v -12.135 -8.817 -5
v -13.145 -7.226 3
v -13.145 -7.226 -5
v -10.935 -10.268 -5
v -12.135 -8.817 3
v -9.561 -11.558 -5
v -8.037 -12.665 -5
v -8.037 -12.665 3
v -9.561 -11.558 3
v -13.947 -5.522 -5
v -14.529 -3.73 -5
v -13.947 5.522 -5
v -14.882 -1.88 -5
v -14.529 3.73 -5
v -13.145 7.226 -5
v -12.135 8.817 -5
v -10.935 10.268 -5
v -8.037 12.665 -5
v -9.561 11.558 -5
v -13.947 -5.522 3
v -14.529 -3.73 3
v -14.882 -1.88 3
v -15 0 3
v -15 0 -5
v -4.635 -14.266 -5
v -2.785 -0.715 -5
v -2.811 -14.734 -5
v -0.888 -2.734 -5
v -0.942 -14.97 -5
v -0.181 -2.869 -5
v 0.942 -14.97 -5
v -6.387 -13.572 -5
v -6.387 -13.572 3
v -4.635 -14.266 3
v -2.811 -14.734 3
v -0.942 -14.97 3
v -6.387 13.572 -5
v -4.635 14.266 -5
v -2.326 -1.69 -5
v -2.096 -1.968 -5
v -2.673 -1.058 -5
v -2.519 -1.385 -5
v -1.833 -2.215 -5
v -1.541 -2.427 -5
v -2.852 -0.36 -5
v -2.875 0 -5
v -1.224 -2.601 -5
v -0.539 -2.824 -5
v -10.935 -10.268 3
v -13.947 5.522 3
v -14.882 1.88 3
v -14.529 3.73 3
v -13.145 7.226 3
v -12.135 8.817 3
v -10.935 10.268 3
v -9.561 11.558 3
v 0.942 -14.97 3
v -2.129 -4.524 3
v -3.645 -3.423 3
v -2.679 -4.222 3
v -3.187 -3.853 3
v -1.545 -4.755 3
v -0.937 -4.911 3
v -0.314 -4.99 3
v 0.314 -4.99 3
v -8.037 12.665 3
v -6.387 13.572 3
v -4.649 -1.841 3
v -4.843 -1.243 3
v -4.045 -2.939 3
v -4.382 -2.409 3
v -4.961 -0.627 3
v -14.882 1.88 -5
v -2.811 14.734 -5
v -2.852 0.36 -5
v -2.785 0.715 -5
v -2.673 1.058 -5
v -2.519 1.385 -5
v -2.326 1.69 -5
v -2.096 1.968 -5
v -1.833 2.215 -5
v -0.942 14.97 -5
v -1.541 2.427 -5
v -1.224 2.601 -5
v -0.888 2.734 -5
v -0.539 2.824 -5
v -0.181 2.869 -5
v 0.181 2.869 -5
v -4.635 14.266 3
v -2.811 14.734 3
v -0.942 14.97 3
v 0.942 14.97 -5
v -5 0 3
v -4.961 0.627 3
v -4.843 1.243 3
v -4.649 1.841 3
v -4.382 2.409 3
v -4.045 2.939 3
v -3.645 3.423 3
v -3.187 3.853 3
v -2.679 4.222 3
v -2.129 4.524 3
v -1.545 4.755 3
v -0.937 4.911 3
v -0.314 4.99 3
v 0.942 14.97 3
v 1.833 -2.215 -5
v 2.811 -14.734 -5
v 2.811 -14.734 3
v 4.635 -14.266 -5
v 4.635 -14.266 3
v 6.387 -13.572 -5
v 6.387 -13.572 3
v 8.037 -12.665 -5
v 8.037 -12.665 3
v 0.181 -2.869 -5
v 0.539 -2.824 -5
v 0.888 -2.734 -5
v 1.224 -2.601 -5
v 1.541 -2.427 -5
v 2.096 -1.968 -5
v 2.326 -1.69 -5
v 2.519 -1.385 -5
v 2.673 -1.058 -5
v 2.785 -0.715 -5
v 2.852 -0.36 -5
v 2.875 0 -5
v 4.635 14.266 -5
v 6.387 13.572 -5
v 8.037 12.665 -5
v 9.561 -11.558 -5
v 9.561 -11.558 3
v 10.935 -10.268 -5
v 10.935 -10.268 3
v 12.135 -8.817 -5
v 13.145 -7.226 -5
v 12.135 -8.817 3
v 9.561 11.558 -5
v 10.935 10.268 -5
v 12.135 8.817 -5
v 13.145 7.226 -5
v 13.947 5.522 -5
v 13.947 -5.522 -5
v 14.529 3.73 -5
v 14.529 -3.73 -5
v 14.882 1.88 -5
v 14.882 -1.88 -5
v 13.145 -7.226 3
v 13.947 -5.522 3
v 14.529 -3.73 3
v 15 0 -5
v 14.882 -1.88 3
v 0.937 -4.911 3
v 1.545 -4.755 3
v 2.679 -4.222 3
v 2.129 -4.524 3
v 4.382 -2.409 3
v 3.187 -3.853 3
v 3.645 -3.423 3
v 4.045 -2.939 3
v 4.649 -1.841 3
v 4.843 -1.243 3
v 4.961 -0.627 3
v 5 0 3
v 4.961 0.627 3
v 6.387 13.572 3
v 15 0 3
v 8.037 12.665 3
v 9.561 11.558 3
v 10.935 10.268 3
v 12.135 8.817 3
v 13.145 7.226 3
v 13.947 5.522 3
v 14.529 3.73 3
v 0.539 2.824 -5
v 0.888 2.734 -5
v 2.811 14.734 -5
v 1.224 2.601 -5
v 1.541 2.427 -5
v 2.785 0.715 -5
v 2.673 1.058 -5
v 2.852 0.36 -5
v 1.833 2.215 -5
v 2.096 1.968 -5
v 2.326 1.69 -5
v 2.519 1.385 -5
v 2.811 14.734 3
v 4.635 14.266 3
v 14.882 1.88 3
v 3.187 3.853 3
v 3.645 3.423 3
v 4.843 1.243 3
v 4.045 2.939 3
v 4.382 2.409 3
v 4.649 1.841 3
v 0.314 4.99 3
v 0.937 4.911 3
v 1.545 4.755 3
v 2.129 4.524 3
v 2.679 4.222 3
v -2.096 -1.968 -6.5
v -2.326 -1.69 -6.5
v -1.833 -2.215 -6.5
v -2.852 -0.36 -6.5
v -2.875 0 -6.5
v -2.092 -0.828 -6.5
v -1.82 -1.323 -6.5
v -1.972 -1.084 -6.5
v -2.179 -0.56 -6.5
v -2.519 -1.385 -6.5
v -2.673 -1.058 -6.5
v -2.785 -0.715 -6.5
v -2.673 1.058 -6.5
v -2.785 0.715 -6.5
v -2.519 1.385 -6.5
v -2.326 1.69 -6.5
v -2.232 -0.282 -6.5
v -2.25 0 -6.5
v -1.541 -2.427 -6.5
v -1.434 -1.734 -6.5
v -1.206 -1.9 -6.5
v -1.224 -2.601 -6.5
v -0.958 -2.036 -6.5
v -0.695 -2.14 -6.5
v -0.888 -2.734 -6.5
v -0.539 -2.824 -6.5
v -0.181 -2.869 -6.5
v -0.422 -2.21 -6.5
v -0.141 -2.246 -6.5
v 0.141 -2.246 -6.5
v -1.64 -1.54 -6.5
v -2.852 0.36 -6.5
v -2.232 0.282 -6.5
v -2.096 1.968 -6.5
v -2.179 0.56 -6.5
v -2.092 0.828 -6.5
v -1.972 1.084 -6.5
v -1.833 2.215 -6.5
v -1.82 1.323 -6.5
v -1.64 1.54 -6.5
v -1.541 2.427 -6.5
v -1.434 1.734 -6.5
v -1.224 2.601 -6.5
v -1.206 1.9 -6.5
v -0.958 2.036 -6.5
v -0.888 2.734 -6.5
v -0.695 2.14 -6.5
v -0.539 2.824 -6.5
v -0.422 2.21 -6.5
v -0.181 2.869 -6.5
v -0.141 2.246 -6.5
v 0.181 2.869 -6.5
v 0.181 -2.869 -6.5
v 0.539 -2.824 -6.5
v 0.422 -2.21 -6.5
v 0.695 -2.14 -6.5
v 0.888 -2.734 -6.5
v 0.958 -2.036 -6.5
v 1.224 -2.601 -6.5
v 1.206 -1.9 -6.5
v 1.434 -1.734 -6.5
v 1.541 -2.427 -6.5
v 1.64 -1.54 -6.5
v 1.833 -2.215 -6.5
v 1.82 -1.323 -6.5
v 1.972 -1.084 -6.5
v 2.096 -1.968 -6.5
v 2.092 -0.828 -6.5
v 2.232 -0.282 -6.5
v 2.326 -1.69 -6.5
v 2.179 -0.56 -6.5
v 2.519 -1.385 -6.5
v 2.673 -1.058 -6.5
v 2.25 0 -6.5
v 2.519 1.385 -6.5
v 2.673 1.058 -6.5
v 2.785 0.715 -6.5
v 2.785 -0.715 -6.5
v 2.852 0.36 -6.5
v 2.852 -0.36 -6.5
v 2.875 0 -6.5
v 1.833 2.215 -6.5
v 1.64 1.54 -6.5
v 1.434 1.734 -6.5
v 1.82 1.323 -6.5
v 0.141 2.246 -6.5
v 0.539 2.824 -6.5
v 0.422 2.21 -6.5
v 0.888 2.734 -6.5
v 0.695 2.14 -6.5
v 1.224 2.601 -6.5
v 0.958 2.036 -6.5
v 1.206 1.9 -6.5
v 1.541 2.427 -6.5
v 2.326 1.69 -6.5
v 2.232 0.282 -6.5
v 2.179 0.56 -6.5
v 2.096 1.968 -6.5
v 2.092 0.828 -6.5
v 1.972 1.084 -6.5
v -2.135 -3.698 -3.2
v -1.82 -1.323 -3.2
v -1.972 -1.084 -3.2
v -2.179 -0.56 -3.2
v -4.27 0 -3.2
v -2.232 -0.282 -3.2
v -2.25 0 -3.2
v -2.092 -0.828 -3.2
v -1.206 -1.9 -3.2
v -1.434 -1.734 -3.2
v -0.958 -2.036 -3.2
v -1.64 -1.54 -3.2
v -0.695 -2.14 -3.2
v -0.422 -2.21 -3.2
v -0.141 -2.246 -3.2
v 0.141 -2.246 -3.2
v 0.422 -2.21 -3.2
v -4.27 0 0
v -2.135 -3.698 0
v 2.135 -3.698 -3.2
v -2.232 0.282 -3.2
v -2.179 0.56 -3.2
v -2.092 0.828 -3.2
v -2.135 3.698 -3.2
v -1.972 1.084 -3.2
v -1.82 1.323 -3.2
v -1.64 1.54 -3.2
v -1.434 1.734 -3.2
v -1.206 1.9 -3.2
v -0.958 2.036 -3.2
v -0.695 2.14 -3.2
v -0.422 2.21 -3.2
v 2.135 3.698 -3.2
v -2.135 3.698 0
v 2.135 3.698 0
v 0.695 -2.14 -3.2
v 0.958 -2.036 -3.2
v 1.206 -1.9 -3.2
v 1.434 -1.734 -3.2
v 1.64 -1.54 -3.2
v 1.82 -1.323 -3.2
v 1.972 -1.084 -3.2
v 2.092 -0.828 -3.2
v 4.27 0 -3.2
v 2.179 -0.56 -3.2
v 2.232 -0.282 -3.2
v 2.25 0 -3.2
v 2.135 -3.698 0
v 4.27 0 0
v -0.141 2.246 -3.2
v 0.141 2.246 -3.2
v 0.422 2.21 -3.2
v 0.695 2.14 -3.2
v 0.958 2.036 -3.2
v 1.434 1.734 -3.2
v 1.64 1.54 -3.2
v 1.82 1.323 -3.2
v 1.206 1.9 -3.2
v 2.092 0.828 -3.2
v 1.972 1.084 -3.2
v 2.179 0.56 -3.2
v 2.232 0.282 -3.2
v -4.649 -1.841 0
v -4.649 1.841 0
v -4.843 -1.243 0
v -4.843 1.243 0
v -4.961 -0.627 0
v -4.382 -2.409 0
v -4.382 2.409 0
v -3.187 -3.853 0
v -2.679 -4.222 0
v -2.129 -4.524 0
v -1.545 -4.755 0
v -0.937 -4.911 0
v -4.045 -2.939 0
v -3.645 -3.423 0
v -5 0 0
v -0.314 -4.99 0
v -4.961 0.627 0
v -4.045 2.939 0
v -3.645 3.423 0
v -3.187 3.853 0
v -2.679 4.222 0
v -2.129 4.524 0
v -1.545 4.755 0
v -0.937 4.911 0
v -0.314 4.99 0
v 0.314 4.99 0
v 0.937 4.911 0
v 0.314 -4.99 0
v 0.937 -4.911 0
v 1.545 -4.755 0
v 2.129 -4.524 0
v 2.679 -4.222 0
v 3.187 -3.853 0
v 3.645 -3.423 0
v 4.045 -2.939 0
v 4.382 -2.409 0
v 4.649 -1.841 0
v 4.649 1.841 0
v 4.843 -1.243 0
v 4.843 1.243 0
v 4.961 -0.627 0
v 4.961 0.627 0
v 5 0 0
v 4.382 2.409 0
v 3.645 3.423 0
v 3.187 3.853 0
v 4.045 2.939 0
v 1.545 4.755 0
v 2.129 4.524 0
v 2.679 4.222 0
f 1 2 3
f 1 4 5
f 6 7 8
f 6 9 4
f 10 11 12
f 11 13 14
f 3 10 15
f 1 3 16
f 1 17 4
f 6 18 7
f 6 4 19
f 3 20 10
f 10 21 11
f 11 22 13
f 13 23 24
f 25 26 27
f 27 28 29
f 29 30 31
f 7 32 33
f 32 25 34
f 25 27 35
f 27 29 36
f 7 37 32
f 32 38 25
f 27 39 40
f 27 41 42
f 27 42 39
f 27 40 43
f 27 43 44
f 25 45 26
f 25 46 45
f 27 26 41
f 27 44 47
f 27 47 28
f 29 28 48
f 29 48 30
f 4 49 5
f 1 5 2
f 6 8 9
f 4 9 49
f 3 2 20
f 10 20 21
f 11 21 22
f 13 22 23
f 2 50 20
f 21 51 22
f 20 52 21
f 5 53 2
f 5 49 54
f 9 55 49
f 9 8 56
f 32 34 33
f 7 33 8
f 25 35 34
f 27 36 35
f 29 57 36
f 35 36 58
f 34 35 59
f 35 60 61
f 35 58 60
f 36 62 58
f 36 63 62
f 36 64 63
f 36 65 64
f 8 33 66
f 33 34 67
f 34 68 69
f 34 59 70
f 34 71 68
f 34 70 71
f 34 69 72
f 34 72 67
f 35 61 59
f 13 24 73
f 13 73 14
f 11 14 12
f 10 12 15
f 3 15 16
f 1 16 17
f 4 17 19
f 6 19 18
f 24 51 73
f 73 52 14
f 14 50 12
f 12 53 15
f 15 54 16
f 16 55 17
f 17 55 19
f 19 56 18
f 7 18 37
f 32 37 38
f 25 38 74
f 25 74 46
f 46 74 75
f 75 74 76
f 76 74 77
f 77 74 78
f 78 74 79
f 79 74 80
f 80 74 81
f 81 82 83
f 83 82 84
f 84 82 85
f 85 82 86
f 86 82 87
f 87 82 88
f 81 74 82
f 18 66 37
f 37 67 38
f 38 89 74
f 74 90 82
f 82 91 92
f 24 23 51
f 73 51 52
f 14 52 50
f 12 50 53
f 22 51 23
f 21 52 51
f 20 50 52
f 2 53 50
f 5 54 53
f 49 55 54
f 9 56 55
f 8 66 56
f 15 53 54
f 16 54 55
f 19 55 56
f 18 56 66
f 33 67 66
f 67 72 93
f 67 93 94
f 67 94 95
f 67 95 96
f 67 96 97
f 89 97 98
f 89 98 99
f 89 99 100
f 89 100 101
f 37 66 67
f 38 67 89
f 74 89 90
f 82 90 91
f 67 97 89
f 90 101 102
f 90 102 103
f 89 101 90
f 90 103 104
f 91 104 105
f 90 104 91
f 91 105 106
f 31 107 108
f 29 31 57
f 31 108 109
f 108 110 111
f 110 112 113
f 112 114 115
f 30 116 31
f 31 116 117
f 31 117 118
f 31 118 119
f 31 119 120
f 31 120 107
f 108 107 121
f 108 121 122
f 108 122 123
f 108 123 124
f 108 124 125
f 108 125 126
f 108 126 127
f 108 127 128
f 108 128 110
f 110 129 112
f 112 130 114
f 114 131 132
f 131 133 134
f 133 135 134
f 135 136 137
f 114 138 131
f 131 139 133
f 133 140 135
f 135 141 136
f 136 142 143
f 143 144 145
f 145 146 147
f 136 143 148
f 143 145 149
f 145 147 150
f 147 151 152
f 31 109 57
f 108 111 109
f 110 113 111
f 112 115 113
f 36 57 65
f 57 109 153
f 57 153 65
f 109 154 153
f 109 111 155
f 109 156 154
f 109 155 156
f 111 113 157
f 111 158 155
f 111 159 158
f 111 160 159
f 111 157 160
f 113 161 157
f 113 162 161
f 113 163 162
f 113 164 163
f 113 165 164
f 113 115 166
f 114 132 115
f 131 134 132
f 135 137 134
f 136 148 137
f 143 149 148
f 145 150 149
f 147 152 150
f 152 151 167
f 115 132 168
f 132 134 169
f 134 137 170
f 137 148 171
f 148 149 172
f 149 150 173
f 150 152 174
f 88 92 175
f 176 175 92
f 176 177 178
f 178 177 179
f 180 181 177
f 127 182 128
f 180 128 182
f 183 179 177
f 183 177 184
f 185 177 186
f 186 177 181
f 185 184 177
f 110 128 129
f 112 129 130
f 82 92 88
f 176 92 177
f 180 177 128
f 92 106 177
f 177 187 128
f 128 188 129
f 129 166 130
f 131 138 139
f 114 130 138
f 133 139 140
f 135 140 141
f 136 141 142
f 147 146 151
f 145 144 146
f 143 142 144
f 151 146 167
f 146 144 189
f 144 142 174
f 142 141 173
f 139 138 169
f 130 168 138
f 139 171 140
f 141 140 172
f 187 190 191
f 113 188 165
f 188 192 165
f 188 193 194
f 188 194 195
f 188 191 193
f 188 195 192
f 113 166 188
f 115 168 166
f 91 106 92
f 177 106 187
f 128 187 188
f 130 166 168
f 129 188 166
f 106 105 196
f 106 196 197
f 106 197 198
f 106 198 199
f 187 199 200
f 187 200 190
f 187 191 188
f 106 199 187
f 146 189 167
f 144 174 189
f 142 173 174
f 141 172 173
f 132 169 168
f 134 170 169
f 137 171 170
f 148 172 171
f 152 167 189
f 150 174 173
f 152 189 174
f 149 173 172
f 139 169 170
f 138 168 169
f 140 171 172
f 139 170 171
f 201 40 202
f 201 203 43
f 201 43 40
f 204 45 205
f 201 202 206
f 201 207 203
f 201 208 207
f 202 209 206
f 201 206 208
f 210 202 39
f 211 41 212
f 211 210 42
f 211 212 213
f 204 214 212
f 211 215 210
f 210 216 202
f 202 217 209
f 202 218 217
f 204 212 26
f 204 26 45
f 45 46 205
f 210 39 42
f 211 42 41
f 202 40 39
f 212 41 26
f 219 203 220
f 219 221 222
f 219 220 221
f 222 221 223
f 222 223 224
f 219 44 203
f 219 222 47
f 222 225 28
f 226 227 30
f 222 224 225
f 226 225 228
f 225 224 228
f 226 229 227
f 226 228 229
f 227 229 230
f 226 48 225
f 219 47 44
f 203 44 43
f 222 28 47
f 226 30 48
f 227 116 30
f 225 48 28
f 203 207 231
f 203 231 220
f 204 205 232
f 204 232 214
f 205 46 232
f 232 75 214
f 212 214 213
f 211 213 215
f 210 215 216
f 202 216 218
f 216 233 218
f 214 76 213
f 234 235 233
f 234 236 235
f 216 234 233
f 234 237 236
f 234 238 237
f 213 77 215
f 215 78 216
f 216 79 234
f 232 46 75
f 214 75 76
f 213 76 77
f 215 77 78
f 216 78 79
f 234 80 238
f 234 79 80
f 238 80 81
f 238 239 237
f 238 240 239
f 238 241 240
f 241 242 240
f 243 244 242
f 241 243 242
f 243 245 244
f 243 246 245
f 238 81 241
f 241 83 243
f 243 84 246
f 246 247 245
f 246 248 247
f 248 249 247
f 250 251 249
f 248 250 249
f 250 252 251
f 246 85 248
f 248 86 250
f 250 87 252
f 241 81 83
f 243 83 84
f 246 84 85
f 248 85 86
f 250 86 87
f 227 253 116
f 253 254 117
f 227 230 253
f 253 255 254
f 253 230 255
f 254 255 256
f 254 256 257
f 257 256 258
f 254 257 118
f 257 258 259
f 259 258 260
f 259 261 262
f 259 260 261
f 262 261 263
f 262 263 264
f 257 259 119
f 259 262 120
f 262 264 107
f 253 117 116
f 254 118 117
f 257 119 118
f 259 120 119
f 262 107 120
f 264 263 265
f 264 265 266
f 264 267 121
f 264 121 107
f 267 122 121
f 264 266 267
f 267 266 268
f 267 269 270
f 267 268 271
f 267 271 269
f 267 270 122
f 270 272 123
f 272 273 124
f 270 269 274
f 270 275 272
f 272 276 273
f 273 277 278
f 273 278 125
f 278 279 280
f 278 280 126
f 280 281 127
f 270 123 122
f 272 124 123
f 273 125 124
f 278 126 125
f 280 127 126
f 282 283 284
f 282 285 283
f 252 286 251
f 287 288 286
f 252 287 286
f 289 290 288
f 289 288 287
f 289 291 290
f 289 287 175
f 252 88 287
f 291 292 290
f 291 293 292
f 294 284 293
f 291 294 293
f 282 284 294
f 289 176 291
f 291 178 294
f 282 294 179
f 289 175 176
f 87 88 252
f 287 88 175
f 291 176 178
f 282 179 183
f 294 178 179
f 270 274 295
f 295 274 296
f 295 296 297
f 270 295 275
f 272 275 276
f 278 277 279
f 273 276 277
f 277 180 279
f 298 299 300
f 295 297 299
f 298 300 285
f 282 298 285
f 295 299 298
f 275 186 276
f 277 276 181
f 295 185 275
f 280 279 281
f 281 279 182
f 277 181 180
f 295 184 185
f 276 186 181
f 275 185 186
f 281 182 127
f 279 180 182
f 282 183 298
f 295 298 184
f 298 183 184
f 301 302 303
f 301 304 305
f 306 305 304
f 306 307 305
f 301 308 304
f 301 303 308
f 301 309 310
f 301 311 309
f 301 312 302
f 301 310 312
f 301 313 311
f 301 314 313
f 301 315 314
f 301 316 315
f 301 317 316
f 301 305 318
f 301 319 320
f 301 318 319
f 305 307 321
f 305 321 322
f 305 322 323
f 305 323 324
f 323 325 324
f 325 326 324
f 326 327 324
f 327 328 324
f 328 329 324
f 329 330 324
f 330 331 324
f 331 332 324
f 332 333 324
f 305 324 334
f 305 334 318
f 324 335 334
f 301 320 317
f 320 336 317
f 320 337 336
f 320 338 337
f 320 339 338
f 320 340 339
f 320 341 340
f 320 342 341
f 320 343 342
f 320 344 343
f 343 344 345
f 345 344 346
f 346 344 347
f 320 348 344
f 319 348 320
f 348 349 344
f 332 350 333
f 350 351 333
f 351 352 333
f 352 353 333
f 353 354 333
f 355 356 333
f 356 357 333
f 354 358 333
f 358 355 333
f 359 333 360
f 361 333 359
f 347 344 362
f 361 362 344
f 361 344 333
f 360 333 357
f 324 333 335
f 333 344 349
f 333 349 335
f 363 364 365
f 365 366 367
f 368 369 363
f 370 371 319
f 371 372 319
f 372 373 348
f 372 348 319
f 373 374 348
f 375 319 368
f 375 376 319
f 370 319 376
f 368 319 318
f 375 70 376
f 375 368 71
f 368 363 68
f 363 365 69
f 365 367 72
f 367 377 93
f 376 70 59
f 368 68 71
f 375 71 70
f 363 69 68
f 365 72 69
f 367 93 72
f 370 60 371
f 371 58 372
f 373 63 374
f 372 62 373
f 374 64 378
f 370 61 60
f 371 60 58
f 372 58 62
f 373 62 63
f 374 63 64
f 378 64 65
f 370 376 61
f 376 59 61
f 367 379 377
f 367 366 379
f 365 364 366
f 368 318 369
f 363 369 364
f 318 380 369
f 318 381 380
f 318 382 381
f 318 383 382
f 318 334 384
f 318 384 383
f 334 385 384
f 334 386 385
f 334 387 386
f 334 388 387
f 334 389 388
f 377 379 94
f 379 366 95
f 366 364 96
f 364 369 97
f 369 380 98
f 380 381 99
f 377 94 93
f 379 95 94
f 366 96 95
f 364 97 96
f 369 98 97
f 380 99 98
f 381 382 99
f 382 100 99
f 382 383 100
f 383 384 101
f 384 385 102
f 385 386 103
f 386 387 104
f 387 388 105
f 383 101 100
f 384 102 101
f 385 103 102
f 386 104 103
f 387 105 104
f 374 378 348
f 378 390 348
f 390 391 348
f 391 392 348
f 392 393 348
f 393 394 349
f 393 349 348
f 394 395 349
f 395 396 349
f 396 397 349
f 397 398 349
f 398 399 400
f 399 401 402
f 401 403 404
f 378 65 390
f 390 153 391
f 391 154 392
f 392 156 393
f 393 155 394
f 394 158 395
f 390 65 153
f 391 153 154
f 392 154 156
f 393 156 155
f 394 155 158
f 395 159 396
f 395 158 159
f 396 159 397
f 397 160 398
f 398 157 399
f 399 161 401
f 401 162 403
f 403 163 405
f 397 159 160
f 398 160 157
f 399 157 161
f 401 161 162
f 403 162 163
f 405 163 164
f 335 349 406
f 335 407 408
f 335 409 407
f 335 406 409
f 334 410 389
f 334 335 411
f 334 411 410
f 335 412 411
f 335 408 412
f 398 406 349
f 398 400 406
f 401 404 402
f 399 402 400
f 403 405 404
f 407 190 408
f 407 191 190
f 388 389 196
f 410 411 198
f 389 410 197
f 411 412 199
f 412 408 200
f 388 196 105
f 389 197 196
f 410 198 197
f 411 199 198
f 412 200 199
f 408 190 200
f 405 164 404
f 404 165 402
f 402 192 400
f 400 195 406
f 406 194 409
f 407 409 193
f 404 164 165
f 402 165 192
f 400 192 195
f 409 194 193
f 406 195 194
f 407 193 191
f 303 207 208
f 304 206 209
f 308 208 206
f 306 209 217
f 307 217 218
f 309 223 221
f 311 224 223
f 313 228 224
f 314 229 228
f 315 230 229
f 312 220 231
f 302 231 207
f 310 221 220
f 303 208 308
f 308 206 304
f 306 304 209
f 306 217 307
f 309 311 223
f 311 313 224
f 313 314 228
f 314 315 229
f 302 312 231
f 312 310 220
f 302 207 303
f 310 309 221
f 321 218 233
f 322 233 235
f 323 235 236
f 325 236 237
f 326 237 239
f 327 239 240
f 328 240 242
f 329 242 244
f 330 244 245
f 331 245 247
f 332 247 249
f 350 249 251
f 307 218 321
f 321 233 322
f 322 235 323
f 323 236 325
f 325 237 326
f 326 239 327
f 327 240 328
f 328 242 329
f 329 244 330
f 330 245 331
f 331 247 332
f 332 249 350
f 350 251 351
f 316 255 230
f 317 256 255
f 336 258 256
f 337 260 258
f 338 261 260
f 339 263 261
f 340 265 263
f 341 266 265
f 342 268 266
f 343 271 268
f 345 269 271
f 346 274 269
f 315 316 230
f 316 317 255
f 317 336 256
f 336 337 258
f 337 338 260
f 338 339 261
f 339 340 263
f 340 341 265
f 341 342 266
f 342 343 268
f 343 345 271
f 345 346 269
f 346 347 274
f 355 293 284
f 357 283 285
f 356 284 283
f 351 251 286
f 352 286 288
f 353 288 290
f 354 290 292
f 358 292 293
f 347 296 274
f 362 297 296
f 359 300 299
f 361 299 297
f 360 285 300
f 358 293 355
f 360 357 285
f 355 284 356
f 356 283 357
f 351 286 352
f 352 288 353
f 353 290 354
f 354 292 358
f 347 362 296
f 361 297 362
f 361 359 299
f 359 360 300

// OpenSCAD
$fn = 50;


difference() {
	union() {
		translate(v = [0, 0, -5.0000000000]) {
			cylinder(h = 8.0000000000, r = 15.0000000000);
		}
		#translate(v = [0, 0, -6.5000000000]) {
			cylinder(h = 6.5000000000, r = 2.8750000000);
		}
	}
	union() {
		translate(v = [0, 0, 0]) {
			rotate(a = [0, 0, 0]) {
				difference() {
					union() {
						translate(v = [0, 0, -3.2000000000]) {
							linear_extrude(height = 3.2000000000) {
								polygon(points = [[4.2698000000, 0.0000000000], [2.1349000000, 3.6977552691], [-2.1349000000, 3.6977552691], [-4.2698000000, 0.0000000000], [-2.1349000000, -3.6977552691], [2.1349000000, -3.6977552691]]);
							}
						}
					}
					union();
				}
			}
		}
		#cylinder(h = 3, r = 5.0000000000);
		#translate(v = [0, 0, -100.0000000000]) {
			cylinder(h = 200, r = 2.2500000000);
		}
	}
}
